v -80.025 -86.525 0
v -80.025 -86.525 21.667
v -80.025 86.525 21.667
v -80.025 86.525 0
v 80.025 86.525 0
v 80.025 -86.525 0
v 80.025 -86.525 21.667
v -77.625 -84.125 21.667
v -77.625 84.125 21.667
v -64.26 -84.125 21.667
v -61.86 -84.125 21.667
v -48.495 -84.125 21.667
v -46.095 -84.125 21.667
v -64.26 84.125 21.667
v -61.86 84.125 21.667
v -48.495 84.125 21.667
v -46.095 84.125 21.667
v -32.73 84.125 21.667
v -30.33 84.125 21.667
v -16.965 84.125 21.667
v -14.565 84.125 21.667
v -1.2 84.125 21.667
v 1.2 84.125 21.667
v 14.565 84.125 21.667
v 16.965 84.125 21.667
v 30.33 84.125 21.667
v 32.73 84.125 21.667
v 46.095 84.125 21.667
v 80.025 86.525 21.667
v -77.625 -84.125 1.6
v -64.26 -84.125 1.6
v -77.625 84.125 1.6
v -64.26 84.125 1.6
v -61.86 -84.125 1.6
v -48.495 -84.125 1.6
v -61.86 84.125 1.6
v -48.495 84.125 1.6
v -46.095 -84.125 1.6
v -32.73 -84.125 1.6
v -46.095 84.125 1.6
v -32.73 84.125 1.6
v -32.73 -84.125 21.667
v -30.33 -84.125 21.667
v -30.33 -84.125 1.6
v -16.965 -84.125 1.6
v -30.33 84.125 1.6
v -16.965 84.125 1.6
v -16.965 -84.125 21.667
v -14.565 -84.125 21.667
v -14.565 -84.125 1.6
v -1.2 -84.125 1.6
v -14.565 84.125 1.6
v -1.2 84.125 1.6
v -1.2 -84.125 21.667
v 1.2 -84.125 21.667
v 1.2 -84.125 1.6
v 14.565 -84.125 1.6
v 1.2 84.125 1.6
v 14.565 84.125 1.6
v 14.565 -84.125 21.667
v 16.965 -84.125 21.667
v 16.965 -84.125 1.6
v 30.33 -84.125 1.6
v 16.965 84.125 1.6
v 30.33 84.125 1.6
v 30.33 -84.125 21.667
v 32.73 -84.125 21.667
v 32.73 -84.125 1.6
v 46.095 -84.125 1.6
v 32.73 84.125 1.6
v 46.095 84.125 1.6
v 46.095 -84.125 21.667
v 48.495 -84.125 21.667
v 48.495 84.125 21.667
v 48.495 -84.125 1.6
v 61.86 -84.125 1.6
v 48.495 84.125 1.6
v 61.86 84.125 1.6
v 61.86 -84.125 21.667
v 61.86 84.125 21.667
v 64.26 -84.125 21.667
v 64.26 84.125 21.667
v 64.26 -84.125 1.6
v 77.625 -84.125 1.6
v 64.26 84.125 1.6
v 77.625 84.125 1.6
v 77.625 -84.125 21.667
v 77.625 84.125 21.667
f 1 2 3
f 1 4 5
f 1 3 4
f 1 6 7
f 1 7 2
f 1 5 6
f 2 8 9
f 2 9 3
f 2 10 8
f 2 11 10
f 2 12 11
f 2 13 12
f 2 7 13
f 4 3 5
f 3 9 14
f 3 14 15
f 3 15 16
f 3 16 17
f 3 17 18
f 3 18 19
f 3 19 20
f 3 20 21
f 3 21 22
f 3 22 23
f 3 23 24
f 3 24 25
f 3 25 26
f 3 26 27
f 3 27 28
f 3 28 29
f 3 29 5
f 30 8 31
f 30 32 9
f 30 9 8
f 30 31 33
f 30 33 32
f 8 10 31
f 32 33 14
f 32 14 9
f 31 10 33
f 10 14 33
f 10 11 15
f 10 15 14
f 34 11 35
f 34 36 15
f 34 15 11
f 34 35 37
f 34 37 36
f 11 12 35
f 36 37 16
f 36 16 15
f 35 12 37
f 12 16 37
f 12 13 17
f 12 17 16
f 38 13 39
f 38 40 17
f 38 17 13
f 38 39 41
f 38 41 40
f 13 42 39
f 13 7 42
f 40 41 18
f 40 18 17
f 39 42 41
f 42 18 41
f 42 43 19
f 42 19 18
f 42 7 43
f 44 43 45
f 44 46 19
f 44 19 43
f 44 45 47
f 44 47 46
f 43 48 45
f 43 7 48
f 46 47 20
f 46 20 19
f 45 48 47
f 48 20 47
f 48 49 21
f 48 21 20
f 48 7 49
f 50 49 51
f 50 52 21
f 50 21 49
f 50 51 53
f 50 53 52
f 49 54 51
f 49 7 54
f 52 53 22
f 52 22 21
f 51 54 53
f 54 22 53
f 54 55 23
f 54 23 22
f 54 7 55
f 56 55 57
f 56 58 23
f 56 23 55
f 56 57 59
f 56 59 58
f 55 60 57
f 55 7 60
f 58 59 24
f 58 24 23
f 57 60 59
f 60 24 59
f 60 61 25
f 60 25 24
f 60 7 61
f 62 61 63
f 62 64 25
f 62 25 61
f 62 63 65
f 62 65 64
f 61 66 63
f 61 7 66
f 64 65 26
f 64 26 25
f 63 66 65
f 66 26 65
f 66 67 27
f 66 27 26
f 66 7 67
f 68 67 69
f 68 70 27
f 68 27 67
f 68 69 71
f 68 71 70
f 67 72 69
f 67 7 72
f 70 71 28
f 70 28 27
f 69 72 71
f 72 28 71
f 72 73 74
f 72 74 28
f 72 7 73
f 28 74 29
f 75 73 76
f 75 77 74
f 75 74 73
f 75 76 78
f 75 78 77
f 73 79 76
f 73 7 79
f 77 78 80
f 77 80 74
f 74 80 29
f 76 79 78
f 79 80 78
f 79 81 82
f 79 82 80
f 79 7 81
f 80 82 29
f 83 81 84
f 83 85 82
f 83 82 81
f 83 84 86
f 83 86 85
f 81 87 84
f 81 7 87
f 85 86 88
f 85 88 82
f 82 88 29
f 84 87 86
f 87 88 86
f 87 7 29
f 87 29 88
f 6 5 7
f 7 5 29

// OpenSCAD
// Start: lazy_union
default_5_default_5();
// End: lazy_union

// Modules.

// 'PartMaterial undef-default - default 5.0'
module default_5_default_5() {
  // 'None : _combine_solids_and_holes'
  union() {
    // '_combine_solids_and_holes'
    difference() {
      // 'rings : _combine_solids_and_holes'
      union() {
        // 'box'
        multmatrix(m=[[1.0, 0.0, 0.0, -80.025], [0.0, 1.0, 0.0, -86.525], [0.0, 0.0, 1.0, 0.0], [0.0, 0.0, 0.0, 1.0]]) {
          // 'box : _combine_solids_and_holes'
          union() {
            // 'box'
            cube(size=[160.05, 173.05, 21.666666666666668]);
          }
        }
      }
      // 'rings'
      multmatrix(m=[[1.0, 0.0, 0.0, -77.625], [0.0, 1.0, 0.0, -84.125], [0.0, 0.0, 1.0, 1.6], [0.0, 0.0, 0.0, 1.0]]) {
        // "('hole', 0, 0) : _combine_solids_and_holes"
        union() {
          // ('hole', 0, 0)
          cube(size=[13.365, 168.25, 20.076666666666668]);
        }
      }
      // 'rings'
      multmatrix(m=[[1.0, 0.0, 0.0, -61.86000000000001], [0.0, 1.0, 0.0, -84.125], [0.0, 0.0, 1.0, 1.6], [0.0, 0.0, 0.0, 1.0]]) {
        // "('hole', 1, 0) : _combine_solids_and_holes"
        union() {
          // ('hole', 1, 0)
          cube(size=[13.365, 168.25, 20.076666666666668]);
        }
      }
      // 'rings'
      multmatrix(m=[[1.0, 0.0, 0.0, -46.095000000000006], [0.0, 1.0, 0.0, -84.125], [0.0, 0.0, 1.0, 1.6], [0.0, 0.0, 0.0, 1.0]]) {
        // "('hole', 2, 0) : _combine_solids_and_holes"
        union() {
          // ('hole', 2, 0)
          cube(size=[13.365, 168.25, 20.076666666666668]);
        }
      }
      // 'rings'
      multmatrix(m=[[1.0, 0.0, 0.0, -30.330000000000005], [0.0, 1.0, 0.0, -84.125], [0.0, 0.0, 1.0, 1.6], [0.0, 0.0, 0.0, 1.0]]) {
        // "('hole', 3, 0) : _combine_solids_and_holes"
        union() {
          // ('hole', 3, 0)
          cube(size=[13.365, 168.25, 20.076666666666668]);
        }
      }
      // 'rings'
      multmatrix(m=[[1.0, 0.0, 0.0, -14.564999999999998], [0.0, 1.0, 0.0, -84.125], [0.0, 0.0, 1.0, 1.6], [0.0, 0.0, 0.0, 1.0]]) {
        // "('hole', 4, 0) : _combine_solids_and_holes"
        union() {
          // ('hole', 4, 0)
          cube(size=[13.365, 168.25, 20.076666666666668]);
        }
      }
      // 'rings'
      multmatrix(m=[[1.0, 0.0, 0.0, 1.2000000000000028], [0.0, 1.0, 0.0, -84.125], [0.0, 0.0, 1.0, 1.6], [0.0, 0.0, 0.0, 1.0]]) {
        // "('hole', 5, 0) : _combine_solids_and_holes"
        union() {
          // ('hole', 5, 0)
          cube(size=[13.365, 168.25, 20.076666666666668]);
        }
      }
      // 'rings'
      multmatrix(m=[[1.0, 0.0, 0.0, 16.965000000000003], [0.0, 1.0, 0.0, -84.125], [0.0, 0.0, 1.0, 1.6], [0.0, 0.0, 0.0, 1.0]]) {
        // "('hole', 6, 0) : _combine_solids_and_holes"
        union() {
          // ('hole', 6, 0)
          cube(size=[13.365, 168.25, 20.076666666666668]);
        }
      }
      // 'rings'
      multmatrix(m=[[1.0, 0.0, 0.0, 32.730000000000004], [0.0, 1.0, 0.0, -84.125], [0.0, 0.0, 1.0, 1.6], [0.0, 0.0, 0.0, 1.0]]) {
        // "('hole', 7, 0) : _combine_solids_and_holes"
        union() {
          // ('hole', 7, 0)
          cube(size=[13.365, 168.25, 20.076666666666668]);
        }
      }
      // 'rings'
      multmatrix(m=[[1.0, 0.0, 0.0, 48.495000000000005], [0.0, 1.0, 0.0, -84.125], [0.0, 0.0, 1.0, 1.6], [0.0, 0.0, 0.0, 1.0]]) {
        // "('hole', 8, 0) : _combine_solids_and_holes"
        union() {
          // ('hole', 8, 0)
          cube(size=[13.365, 168.25, 20.076666666666668]);
        }
      }
      // 'rings'
      multmatrix(m=[[1.0, 0.0, 0.0, 64.25999999999999], [0.0, 1.0, 0.0, -84.125], [0.0, 0.0, 1.0, 1.6], [0.0, 0.0, 0.0, 1.0]]) {
        // "('hole', 9, 0) : _combine_solids_and_holes"
        union() {
          // ('hole', 9, 0)
          cube(size=[13.365, 168.25, 20.076666666666668]);
        }
      }
    }
  }
} // end module default_5_default_5
